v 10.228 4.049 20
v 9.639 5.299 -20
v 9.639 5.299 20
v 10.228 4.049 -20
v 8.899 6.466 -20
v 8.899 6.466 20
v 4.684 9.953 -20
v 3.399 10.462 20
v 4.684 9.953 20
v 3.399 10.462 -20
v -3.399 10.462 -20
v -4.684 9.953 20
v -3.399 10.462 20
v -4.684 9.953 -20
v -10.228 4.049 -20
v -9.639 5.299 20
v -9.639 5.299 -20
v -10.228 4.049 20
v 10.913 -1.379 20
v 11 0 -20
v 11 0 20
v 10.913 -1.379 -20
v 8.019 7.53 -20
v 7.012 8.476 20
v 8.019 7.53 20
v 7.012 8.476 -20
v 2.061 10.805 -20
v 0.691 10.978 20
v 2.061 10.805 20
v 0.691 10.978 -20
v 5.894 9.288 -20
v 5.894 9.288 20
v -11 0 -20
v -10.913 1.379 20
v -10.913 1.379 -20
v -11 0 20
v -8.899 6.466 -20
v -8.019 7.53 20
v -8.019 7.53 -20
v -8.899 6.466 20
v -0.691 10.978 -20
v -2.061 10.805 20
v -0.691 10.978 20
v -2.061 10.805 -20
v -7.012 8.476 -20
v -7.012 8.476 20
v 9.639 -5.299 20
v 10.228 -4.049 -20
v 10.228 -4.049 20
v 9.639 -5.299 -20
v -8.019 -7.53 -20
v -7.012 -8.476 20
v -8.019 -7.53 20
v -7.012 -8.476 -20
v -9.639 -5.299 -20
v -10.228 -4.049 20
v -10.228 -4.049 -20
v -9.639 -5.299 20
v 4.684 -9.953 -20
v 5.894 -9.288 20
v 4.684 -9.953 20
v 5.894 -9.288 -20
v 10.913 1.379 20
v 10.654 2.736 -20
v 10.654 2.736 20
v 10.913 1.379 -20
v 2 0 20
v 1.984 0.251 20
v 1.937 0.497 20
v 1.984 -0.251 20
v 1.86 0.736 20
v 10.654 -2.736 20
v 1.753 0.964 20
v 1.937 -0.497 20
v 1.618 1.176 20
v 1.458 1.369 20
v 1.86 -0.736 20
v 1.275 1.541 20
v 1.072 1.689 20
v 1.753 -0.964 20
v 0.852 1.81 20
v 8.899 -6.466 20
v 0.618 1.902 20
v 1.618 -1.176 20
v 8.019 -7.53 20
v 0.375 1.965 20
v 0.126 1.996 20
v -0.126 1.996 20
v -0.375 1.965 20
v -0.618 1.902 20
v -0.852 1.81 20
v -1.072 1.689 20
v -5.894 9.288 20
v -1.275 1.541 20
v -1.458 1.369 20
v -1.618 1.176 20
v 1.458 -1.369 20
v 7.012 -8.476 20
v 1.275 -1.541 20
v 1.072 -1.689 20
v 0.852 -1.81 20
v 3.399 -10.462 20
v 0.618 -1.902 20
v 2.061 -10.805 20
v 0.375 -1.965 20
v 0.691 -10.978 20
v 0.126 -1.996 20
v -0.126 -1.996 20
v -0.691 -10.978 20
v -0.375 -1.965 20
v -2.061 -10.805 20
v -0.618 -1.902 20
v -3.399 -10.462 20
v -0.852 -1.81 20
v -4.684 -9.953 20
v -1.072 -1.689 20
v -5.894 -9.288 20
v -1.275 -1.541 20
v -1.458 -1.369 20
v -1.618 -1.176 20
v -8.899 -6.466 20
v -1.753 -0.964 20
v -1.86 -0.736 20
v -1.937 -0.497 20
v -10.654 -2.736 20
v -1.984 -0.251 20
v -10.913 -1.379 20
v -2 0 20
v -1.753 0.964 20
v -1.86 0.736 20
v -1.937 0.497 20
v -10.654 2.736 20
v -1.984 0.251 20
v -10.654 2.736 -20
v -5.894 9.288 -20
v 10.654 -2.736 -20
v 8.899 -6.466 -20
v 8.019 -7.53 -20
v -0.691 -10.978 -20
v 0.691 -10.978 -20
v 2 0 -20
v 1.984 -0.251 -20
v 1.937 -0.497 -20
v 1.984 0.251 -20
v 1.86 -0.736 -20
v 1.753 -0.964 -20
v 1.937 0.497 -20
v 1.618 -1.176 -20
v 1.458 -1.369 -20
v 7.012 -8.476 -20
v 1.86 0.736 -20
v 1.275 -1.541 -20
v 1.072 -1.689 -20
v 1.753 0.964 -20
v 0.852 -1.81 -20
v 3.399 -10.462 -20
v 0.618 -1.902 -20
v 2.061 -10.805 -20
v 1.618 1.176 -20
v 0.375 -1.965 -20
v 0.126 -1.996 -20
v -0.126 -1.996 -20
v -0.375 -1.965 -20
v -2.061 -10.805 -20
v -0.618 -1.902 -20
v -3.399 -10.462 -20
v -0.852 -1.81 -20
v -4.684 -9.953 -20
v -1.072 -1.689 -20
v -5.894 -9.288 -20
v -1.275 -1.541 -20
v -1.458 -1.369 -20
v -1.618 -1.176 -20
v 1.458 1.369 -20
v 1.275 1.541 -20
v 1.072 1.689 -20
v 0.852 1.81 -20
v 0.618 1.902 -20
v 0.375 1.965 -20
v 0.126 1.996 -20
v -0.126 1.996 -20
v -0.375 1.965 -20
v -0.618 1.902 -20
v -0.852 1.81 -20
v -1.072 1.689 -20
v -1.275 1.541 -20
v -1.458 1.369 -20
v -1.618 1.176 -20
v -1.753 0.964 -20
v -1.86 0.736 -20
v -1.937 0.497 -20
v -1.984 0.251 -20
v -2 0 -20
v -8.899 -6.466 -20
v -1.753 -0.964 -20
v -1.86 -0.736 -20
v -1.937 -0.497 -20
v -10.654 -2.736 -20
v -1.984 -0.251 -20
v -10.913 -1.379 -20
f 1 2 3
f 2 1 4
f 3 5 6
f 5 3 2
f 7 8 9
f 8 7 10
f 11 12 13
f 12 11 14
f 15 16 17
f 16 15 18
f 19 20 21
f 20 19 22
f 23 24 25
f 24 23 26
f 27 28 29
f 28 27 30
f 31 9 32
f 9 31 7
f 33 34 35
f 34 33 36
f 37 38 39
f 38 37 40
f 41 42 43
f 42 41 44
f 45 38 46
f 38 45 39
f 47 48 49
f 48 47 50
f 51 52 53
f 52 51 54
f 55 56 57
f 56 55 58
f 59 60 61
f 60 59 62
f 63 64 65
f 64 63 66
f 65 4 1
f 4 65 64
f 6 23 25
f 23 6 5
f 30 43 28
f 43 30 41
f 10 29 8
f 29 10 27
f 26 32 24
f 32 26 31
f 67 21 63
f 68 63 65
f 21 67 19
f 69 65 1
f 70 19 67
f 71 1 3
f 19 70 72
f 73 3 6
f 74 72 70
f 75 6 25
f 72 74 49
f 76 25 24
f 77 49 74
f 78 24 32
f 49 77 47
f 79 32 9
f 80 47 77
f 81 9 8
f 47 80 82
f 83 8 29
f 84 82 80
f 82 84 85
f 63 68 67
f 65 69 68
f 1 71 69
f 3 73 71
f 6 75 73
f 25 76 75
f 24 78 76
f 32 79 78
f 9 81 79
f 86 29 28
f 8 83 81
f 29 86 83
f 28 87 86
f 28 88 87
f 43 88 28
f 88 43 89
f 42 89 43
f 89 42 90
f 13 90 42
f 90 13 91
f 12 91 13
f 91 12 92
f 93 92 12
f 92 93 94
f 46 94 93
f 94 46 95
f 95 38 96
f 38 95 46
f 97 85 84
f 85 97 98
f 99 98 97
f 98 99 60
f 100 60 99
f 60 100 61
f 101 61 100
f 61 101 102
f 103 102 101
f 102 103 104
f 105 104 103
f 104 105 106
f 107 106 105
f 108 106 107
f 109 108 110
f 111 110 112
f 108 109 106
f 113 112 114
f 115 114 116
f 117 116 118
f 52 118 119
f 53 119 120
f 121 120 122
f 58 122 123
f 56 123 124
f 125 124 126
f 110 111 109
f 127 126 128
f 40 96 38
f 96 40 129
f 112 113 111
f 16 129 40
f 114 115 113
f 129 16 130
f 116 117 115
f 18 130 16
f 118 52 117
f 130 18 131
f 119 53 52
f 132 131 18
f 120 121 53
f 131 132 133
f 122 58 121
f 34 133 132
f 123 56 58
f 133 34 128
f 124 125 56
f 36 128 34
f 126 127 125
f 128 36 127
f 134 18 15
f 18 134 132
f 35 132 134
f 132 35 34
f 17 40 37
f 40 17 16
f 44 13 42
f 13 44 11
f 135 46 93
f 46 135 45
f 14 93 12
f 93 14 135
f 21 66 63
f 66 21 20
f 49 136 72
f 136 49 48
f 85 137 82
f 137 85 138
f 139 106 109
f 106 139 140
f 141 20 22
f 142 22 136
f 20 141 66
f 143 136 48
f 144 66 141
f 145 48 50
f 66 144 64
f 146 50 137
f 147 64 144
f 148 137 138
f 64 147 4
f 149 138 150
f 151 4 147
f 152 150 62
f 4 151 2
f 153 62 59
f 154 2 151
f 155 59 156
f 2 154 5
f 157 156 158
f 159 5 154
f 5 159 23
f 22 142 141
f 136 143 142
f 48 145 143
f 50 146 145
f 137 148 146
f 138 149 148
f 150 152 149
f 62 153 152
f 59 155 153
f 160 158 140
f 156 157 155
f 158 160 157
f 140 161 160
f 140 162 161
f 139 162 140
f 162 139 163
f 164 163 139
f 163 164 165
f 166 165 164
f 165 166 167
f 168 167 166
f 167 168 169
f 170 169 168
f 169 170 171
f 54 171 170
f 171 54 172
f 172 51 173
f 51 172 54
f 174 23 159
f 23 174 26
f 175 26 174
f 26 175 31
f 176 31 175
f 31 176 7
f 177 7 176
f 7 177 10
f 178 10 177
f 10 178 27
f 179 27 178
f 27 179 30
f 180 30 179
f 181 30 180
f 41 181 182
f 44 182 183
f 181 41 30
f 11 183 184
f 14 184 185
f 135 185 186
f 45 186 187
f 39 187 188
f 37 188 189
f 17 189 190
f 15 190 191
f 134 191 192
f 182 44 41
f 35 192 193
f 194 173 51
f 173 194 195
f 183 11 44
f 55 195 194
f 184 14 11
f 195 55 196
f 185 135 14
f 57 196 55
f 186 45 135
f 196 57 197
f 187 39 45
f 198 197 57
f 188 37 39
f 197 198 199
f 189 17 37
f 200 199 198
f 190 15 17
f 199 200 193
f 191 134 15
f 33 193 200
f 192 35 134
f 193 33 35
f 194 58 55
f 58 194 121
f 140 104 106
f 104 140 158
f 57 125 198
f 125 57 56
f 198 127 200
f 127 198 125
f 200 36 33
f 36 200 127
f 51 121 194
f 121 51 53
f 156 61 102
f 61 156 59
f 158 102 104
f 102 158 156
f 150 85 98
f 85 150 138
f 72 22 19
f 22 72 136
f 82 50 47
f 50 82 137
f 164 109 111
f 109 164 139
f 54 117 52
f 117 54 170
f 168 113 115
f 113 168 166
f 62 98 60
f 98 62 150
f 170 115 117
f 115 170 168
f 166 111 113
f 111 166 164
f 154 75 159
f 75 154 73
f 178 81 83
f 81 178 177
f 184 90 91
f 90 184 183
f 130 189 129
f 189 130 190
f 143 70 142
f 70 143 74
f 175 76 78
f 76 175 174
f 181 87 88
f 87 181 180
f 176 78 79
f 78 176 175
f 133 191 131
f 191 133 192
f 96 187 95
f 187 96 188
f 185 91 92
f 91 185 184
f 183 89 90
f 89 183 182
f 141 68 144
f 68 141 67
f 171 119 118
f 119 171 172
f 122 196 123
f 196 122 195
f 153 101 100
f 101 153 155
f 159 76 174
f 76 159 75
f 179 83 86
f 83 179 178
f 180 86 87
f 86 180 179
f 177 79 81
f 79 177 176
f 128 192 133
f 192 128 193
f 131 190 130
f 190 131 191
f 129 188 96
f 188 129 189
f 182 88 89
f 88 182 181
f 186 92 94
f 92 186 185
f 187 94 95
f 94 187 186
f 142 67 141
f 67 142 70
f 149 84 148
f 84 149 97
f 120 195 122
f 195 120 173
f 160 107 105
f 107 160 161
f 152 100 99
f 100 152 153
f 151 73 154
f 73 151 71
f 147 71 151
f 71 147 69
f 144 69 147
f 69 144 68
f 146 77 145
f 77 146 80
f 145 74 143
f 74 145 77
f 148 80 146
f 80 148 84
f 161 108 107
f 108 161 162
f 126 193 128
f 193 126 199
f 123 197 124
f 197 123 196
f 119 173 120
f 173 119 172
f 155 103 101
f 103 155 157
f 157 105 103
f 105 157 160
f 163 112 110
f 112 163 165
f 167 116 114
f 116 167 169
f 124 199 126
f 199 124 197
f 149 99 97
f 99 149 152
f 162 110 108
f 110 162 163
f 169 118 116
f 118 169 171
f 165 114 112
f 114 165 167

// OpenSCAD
$fn = 50;


difference() {
	union() {
		translate(v = [0, 0, -20.0000000000]) {
			cylinder(h = 40, r = 11.0000000000);
		}
	}
	union() {
		translate(v = [0, 0, -100.0000000000]) {
			cylinder(h = 200, r = 2);
		}
	}
}
